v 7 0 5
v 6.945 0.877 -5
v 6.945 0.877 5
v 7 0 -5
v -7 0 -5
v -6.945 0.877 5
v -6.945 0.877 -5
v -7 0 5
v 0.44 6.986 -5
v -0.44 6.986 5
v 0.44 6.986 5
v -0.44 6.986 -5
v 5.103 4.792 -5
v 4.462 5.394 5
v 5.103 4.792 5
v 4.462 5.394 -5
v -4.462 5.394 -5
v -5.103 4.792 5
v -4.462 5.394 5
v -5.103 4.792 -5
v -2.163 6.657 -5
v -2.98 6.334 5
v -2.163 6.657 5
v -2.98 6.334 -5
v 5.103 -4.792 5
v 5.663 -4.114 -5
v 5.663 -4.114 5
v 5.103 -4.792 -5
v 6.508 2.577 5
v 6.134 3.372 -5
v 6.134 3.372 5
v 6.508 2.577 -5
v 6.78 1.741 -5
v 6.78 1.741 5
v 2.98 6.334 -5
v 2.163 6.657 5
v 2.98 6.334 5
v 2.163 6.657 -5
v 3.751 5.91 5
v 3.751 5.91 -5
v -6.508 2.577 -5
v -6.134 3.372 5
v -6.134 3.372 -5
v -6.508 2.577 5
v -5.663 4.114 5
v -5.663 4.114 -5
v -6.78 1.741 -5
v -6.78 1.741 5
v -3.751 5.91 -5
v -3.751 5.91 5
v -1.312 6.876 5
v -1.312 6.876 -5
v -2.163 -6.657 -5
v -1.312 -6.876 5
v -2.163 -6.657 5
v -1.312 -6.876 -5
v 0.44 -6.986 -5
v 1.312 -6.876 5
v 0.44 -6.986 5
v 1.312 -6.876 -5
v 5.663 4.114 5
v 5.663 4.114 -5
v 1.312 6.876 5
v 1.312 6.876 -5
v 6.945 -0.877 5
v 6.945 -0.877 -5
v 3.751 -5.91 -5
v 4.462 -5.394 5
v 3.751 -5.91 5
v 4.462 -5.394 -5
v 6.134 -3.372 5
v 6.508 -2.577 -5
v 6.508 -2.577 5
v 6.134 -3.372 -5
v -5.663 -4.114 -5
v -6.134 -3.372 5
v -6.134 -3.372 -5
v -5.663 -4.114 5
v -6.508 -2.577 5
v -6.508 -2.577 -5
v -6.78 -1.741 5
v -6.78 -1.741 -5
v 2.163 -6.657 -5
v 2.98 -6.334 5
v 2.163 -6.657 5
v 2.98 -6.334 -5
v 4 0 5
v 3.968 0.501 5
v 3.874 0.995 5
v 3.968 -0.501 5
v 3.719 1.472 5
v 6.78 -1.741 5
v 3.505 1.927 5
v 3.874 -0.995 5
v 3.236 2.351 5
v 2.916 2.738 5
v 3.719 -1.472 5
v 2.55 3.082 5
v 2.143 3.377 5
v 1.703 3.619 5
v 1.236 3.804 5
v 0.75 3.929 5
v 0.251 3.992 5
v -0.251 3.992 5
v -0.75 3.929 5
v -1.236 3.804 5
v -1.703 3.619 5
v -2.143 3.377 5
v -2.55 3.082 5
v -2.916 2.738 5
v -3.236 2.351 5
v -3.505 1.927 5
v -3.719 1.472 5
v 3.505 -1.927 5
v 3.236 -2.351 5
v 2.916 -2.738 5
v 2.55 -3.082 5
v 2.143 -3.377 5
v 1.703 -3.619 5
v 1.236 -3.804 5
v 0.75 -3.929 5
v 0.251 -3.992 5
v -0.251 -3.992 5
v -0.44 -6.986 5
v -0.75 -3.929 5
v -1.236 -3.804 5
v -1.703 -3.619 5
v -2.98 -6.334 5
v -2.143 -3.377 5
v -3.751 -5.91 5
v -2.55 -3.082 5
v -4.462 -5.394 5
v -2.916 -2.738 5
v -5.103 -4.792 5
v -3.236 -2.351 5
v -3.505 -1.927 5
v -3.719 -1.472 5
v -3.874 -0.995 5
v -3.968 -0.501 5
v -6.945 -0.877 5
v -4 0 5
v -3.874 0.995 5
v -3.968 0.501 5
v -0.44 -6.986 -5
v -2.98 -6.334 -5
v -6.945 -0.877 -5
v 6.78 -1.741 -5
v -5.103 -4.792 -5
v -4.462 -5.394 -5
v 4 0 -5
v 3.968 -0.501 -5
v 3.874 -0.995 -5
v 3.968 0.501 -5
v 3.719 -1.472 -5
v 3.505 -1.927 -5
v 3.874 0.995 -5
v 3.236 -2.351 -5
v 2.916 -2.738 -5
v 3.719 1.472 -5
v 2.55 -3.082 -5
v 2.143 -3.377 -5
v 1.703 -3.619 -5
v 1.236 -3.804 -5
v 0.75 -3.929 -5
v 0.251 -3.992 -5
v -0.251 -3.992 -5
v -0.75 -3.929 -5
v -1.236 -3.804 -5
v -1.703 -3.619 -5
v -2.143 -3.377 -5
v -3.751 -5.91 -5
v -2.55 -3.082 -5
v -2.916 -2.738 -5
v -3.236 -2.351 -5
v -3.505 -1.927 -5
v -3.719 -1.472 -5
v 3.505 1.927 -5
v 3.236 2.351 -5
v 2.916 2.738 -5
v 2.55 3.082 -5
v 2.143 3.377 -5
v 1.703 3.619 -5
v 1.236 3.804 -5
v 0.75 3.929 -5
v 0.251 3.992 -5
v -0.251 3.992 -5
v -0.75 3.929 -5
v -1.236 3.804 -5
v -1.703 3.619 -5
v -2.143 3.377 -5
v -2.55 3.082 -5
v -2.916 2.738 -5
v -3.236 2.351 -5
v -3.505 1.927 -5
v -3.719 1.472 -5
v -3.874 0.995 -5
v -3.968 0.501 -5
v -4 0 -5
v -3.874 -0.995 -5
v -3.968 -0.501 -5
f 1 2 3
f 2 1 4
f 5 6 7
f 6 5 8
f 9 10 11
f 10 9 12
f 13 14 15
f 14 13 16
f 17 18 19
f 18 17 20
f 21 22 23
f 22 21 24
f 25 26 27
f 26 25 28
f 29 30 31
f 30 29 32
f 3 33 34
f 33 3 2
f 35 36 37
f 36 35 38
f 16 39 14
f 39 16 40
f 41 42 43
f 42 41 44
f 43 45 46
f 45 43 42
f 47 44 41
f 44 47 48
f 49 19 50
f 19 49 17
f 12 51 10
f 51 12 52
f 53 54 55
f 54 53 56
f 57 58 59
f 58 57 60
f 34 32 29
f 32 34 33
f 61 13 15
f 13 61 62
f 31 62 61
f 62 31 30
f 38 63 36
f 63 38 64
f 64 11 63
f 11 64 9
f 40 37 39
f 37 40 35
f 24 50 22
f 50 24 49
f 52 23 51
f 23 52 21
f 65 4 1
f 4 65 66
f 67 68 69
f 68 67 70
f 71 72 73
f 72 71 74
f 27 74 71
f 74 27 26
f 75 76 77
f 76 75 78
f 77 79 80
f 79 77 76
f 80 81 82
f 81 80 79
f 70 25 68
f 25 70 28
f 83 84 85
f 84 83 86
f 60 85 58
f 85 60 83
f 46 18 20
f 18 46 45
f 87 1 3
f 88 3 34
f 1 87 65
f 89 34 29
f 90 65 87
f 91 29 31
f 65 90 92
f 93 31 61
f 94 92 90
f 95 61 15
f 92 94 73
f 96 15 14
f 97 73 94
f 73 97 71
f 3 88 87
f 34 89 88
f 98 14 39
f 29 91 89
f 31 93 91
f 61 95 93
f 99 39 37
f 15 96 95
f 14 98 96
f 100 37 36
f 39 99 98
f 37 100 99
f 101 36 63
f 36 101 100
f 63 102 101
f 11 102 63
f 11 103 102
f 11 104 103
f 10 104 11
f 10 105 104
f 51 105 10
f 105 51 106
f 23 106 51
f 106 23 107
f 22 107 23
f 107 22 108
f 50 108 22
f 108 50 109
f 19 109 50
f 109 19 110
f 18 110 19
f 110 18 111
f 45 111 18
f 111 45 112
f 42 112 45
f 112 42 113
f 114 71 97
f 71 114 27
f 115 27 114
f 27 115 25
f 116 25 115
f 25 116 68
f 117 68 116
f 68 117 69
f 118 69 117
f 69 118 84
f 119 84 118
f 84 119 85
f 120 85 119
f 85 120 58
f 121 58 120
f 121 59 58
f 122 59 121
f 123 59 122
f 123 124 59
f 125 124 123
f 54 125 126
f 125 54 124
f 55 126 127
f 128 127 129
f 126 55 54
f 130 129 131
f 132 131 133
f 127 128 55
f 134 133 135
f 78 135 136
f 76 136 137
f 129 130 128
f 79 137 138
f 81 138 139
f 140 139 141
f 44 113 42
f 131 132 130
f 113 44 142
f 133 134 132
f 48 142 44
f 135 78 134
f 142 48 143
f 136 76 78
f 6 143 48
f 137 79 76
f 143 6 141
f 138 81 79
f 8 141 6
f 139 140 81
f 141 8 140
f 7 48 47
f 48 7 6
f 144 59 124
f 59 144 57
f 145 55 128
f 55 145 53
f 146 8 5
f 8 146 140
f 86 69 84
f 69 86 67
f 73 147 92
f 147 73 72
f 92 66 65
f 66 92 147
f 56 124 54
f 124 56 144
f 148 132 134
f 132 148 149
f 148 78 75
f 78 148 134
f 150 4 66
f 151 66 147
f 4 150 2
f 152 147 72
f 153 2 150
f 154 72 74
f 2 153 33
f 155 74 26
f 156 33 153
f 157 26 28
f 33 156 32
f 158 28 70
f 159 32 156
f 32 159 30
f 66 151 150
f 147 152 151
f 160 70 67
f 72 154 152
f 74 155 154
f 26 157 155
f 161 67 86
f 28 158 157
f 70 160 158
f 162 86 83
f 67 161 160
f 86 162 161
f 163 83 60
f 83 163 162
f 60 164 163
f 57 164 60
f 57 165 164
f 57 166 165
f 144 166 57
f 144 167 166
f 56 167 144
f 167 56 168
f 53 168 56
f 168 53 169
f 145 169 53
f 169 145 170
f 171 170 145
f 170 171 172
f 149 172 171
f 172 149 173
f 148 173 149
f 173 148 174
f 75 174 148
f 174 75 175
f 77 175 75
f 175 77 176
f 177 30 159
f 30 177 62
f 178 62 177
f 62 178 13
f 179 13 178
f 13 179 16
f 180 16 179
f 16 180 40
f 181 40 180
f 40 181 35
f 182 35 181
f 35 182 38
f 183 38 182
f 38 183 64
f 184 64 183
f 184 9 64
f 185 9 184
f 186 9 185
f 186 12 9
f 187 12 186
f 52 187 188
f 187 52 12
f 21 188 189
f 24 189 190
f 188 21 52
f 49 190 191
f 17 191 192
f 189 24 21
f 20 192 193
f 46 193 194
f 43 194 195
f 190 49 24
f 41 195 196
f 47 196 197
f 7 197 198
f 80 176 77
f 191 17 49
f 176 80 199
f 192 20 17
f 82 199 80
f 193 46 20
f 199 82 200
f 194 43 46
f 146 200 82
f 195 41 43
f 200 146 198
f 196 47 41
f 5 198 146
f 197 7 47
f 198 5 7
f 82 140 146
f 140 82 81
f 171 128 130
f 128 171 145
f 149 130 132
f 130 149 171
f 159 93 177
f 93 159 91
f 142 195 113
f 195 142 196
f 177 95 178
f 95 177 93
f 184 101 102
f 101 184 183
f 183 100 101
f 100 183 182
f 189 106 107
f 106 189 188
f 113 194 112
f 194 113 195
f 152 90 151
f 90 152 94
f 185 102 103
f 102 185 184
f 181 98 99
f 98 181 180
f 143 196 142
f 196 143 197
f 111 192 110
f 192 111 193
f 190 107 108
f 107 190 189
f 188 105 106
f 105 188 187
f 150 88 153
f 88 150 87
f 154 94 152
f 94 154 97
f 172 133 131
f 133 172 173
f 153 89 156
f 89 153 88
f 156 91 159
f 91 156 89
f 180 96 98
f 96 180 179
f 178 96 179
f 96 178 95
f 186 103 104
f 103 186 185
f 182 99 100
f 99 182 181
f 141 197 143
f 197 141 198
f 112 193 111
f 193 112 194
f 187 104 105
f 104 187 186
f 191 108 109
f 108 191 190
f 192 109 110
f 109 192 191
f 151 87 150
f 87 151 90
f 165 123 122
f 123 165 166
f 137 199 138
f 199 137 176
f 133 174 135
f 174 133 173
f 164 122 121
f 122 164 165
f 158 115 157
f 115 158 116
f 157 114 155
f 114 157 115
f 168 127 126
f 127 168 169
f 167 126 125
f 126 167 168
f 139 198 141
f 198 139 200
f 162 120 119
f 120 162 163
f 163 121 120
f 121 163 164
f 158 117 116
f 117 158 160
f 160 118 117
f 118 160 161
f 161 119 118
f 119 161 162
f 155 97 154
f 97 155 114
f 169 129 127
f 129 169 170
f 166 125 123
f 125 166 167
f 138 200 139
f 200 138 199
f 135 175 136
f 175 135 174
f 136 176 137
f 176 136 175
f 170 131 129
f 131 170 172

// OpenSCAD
$fn = 50;


difference() {
	union() {
		translate(v = [0, 0, -5.0000000000]) {
			cylinder(h = 10, r = 7.0000000000);
		}
	}
	union() {
		translate(v = [0, 0, -100.0000000000]) {
			cylinder(h = 200, r = 4.0000000000);
		}
	}
}
